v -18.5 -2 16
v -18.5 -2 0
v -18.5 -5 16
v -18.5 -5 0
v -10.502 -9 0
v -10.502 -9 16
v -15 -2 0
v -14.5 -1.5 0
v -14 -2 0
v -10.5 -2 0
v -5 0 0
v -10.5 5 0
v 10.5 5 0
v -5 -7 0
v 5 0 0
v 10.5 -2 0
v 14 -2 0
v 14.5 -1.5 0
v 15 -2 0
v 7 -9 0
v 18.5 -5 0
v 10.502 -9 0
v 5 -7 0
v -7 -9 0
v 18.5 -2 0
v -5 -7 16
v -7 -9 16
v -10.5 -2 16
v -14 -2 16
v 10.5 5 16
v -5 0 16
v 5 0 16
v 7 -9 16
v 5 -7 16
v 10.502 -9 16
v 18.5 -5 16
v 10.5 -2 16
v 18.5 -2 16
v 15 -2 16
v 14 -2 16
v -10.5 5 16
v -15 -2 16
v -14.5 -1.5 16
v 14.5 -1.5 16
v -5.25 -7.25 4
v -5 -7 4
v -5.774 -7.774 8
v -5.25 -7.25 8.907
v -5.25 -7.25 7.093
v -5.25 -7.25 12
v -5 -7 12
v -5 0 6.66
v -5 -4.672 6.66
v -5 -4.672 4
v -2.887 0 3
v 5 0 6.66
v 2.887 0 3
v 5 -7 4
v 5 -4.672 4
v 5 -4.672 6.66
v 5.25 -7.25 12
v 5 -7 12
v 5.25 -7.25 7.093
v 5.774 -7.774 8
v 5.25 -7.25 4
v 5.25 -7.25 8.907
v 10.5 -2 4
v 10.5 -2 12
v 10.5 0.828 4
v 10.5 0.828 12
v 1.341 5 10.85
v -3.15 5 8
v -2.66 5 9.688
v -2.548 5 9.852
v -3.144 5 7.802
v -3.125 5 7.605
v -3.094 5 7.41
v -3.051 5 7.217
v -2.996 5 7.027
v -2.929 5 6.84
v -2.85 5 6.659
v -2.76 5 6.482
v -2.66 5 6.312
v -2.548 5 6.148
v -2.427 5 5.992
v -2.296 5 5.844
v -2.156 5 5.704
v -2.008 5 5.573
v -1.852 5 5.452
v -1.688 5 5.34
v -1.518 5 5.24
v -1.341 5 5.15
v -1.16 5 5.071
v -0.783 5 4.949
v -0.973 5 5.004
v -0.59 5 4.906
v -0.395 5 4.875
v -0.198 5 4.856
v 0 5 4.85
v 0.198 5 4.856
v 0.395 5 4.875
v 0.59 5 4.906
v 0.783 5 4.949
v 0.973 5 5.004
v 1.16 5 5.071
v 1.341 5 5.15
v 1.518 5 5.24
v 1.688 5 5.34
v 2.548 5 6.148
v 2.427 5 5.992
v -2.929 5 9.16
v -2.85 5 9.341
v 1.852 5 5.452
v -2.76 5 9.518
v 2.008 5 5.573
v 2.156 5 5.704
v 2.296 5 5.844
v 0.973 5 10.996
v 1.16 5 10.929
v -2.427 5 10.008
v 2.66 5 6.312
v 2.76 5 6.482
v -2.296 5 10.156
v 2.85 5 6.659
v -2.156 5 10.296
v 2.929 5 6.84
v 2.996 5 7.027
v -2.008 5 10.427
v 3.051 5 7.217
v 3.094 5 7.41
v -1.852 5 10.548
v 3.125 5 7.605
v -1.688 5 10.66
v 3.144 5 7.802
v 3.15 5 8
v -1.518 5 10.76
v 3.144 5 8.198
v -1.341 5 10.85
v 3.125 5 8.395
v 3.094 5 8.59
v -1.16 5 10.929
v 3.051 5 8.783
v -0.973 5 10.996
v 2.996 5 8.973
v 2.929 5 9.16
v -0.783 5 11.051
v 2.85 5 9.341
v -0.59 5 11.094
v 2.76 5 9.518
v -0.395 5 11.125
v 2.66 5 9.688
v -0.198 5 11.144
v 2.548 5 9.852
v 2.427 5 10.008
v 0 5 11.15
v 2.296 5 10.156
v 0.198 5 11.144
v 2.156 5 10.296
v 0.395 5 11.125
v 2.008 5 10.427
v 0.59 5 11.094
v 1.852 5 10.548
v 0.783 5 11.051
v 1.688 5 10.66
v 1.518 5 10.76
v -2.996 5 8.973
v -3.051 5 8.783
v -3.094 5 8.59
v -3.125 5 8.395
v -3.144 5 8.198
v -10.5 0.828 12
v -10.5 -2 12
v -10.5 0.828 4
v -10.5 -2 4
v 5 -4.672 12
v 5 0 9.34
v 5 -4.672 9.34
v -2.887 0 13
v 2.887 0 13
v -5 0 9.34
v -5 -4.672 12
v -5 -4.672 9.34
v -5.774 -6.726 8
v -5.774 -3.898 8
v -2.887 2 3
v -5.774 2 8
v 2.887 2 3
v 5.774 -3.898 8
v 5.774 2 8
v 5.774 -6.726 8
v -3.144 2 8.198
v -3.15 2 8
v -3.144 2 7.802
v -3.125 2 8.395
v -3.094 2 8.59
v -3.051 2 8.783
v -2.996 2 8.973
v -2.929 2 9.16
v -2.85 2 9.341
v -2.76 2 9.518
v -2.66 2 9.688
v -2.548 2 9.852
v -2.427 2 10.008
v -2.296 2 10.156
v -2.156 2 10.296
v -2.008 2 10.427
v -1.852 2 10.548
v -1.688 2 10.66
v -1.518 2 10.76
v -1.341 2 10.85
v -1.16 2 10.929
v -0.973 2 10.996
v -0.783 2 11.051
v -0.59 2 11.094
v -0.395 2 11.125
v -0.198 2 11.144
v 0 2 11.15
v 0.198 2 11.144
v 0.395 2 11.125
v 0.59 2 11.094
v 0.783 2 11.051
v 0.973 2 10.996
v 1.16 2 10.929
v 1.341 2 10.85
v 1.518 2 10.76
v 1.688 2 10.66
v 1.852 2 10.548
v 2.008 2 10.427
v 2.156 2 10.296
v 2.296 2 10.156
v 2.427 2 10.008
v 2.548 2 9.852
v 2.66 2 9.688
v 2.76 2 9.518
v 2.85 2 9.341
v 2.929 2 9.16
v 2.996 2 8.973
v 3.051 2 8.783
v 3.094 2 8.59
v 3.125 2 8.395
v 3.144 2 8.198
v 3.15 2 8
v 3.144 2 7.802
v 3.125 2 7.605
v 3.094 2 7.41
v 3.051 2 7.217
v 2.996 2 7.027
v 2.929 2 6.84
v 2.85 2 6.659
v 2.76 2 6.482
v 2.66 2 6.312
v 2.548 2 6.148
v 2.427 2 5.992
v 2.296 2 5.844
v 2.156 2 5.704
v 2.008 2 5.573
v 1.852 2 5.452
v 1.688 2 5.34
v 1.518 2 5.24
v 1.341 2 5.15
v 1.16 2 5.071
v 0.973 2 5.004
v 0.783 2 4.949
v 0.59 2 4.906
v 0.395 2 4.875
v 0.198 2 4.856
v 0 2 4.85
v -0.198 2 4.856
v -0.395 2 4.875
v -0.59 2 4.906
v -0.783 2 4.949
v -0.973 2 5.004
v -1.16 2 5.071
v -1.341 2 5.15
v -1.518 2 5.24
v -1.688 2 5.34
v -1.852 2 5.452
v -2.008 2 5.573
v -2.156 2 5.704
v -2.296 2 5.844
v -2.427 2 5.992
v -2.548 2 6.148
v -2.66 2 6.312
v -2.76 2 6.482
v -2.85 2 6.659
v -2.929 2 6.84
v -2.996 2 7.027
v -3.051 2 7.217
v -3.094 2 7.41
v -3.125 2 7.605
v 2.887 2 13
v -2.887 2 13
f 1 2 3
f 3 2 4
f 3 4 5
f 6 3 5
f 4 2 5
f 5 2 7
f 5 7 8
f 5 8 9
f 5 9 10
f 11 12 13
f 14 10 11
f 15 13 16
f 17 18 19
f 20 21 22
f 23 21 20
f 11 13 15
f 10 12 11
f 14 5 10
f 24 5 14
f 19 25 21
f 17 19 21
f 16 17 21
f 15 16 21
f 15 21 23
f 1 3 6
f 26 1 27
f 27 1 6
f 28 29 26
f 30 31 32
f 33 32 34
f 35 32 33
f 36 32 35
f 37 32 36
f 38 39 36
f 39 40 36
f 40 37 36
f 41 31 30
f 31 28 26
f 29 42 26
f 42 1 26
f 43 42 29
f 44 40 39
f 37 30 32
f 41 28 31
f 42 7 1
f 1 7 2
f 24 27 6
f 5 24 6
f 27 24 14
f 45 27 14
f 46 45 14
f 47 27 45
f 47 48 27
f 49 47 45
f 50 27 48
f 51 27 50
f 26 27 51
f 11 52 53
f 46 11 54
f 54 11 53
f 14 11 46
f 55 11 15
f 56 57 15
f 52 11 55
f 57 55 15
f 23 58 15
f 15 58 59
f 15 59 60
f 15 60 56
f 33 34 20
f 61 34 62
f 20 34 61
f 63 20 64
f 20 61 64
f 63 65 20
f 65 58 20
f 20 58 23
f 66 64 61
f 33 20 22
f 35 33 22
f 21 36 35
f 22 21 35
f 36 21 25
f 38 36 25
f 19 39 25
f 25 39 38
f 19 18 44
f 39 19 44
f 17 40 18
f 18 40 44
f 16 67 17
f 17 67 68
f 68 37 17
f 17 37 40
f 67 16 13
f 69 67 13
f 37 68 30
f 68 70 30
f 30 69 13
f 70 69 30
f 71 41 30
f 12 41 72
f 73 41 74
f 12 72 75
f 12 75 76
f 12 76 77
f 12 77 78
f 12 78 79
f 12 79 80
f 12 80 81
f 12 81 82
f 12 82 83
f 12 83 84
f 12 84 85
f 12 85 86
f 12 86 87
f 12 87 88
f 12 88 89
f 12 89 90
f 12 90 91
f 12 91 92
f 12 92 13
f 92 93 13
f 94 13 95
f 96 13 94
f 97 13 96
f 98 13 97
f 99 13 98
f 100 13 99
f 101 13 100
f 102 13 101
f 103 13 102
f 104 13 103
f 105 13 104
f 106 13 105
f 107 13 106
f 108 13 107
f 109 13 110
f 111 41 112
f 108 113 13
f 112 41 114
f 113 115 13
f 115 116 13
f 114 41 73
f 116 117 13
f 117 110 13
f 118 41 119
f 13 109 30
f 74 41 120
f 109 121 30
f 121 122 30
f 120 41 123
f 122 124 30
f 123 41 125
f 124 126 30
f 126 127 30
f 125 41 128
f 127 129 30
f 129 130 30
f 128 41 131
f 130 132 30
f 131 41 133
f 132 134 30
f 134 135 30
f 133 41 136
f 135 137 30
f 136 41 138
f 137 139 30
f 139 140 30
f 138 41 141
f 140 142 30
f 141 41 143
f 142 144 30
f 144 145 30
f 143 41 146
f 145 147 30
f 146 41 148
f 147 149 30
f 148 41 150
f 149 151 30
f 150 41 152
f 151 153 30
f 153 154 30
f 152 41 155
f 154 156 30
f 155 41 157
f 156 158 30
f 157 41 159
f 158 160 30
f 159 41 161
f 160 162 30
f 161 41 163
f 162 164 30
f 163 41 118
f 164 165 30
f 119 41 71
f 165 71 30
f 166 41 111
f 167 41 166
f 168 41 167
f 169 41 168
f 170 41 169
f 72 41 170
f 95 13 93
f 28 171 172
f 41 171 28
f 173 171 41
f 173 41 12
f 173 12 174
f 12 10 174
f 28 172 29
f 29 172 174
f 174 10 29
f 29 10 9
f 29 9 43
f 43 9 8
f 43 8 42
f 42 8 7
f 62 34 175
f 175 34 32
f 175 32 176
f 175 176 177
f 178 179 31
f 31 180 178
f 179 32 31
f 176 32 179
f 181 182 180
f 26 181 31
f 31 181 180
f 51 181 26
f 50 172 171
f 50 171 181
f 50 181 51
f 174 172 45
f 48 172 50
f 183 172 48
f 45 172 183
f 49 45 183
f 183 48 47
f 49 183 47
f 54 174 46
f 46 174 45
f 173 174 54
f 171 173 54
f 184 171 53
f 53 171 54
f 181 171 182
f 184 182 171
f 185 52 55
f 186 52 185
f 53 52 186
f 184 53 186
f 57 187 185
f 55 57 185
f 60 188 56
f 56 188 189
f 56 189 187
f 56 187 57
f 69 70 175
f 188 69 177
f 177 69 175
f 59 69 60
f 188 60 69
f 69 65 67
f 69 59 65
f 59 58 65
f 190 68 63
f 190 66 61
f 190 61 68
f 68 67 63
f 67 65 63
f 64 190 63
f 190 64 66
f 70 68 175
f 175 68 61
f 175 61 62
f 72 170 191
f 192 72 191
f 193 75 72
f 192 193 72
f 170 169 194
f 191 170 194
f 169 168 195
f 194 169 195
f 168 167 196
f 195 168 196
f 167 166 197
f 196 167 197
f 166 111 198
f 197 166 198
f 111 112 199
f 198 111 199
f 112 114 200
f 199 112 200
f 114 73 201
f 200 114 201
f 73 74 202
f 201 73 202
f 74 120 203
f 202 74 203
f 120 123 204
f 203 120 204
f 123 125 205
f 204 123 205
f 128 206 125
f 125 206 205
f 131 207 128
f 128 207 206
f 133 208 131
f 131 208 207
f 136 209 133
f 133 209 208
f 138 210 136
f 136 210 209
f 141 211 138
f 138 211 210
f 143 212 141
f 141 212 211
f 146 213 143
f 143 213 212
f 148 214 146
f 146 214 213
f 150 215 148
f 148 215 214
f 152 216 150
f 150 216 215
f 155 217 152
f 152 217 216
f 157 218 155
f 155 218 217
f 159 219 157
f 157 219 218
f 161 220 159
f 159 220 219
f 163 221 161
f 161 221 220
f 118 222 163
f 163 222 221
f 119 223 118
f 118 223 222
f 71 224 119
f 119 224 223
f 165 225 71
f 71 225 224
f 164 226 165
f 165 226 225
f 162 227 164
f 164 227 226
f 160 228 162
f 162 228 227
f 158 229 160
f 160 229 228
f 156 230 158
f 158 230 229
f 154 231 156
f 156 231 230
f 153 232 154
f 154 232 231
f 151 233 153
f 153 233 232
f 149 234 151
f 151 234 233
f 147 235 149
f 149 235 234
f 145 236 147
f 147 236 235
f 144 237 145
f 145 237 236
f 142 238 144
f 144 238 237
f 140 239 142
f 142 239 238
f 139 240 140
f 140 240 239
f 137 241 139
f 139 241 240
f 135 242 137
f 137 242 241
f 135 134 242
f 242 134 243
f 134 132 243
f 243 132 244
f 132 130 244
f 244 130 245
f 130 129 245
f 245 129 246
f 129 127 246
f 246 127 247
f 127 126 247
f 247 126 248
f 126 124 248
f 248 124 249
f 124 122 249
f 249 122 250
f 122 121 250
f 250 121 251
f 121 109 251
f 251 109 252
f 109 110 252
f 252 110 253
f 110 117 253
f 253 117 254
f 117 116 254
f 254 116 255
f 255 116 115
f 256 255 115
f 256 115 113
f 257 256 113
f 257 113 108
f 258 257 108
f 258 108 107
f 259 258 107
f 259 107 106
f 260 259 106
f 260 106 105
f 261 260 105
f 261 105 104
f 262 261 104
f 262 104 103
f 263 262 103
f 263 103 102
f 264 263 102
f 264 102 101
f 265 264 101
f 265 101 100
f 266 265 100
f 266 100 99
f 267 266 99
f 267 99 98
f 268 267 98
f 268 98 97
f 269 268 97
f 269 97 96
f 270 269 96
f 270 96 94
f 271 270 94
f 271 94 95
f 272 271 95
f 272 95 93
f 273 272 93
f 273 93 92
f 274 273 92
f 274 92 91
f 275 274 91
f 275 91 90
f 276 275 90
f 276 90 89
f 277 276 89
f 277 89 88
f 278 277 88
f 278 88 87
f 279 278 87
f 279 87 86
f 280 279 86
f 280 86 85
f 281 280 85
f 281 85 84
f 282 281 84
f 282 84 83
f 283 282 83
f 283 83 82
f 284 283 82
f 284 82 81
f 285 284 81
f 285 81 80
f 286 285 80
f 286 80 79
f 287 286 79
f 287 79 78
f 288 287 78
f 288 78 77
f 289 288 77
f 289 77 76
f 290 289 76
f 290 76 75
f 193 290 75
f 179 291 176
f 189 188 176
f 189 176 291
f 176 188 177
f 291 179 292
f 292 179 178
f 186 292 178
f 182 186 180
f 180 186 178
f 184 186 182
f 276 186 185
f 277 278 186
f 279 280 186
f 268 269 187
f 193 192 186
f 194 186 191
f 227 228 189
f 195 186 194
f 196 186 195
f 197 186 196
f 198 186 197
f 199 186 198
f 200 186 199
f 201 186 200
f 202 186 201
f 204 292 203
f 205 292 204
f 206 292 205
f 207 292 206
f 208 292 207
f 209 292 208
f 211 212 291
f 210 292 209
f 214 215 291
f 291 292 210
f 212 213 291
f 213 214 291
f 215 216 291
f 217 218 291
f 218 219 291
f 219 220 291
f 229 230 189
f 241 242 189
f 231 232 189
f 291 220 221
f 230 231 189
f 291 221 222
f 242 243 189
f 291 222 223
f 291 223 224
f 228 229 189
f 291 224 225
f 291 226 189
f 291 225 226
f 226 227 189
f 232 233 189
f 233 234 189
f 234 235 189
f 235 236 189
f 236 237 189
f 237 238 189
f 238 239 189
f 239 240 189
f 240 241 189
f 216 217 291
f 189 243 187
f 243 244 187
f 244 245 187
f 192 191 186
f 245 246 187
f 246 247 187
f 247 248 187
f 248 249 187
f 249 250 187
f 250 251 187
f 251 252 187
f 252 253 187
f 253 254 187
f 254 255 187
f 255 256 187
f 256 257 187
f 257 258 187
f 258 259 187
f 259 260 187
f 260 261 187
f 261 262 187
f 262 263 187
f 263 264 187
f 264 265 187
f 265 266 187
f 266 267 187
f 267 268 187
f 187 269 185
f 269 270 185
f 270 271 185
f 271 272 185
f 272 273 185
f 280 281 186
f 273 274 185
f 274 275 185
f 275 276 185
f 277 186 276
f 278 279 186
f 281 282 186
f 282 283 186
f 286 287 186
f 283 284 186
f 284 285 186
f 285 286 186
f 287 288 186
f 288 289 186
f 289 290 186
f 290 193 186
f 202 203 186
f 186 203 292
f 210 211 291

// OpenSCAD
// Created from Code_Ybelt_holderB.stl
// https://github.com/Mecan0/Code
// By J.Rodigo (www.jra.so)
// Licence Creative commons atribution & share alike.

// Media Pieza
module mpieza(){
	cube([10.5, 5, 16]);

	translate([5, -9, 0])
	cube([5.5, 9, 16]);

	translate([5, -9, 0])
	cube([13.5, 7, 16]);

	translate([14.5, -1.5, 0])
	rotate( 225 ,[0, 0, 1])
	cube([1, 1, 16]);
}

// Operaciones para media pieza
module moperaciones(){

	translate([5, -7, -1])
	rotate( 225 ,[0, 0, 1])
	cube([3, 3, 18]);

	translate([18.5, -5, -1])
	rotate( 206.57 ,[0, 0, 1])
	cube([10, 4, 18]);

	translate([5, -7.5, 4])
	rotate( 45 ,[0, 0, 1])
	cube([10, 2, 8]);
}

// Generar un hexágono circunscrito (Diametro,altura) 
module hexagono(d,h,c){ 
	for (a = [0, 60,120]){ 
		rotate( a, [0, 0, 1])
		cube([d, d*tan(30), h], center = true);
	}
}

// Generamos la pieza y las operaciones
difference () {
	union() {
		mpieza();

		mirror([ 1, 0, 0 ])
		mpieza();
	}	
	union() {
		moperaciones();

		mirror([ 1, 0, 0 ])
		moperaciones();

		//Operaciones Unicas
		translate([0, -1, 8])
		rotate( -90, [1, 0, 0])
		cylinder(h = 7, r = 3.15, $fn=100);

		translate([0, -3.5, 8])
		rotate( 90, [1, 0, 0])
		rotate( 90, [0, 0, 1])
		hexagono(10, 11);
	}	
}
